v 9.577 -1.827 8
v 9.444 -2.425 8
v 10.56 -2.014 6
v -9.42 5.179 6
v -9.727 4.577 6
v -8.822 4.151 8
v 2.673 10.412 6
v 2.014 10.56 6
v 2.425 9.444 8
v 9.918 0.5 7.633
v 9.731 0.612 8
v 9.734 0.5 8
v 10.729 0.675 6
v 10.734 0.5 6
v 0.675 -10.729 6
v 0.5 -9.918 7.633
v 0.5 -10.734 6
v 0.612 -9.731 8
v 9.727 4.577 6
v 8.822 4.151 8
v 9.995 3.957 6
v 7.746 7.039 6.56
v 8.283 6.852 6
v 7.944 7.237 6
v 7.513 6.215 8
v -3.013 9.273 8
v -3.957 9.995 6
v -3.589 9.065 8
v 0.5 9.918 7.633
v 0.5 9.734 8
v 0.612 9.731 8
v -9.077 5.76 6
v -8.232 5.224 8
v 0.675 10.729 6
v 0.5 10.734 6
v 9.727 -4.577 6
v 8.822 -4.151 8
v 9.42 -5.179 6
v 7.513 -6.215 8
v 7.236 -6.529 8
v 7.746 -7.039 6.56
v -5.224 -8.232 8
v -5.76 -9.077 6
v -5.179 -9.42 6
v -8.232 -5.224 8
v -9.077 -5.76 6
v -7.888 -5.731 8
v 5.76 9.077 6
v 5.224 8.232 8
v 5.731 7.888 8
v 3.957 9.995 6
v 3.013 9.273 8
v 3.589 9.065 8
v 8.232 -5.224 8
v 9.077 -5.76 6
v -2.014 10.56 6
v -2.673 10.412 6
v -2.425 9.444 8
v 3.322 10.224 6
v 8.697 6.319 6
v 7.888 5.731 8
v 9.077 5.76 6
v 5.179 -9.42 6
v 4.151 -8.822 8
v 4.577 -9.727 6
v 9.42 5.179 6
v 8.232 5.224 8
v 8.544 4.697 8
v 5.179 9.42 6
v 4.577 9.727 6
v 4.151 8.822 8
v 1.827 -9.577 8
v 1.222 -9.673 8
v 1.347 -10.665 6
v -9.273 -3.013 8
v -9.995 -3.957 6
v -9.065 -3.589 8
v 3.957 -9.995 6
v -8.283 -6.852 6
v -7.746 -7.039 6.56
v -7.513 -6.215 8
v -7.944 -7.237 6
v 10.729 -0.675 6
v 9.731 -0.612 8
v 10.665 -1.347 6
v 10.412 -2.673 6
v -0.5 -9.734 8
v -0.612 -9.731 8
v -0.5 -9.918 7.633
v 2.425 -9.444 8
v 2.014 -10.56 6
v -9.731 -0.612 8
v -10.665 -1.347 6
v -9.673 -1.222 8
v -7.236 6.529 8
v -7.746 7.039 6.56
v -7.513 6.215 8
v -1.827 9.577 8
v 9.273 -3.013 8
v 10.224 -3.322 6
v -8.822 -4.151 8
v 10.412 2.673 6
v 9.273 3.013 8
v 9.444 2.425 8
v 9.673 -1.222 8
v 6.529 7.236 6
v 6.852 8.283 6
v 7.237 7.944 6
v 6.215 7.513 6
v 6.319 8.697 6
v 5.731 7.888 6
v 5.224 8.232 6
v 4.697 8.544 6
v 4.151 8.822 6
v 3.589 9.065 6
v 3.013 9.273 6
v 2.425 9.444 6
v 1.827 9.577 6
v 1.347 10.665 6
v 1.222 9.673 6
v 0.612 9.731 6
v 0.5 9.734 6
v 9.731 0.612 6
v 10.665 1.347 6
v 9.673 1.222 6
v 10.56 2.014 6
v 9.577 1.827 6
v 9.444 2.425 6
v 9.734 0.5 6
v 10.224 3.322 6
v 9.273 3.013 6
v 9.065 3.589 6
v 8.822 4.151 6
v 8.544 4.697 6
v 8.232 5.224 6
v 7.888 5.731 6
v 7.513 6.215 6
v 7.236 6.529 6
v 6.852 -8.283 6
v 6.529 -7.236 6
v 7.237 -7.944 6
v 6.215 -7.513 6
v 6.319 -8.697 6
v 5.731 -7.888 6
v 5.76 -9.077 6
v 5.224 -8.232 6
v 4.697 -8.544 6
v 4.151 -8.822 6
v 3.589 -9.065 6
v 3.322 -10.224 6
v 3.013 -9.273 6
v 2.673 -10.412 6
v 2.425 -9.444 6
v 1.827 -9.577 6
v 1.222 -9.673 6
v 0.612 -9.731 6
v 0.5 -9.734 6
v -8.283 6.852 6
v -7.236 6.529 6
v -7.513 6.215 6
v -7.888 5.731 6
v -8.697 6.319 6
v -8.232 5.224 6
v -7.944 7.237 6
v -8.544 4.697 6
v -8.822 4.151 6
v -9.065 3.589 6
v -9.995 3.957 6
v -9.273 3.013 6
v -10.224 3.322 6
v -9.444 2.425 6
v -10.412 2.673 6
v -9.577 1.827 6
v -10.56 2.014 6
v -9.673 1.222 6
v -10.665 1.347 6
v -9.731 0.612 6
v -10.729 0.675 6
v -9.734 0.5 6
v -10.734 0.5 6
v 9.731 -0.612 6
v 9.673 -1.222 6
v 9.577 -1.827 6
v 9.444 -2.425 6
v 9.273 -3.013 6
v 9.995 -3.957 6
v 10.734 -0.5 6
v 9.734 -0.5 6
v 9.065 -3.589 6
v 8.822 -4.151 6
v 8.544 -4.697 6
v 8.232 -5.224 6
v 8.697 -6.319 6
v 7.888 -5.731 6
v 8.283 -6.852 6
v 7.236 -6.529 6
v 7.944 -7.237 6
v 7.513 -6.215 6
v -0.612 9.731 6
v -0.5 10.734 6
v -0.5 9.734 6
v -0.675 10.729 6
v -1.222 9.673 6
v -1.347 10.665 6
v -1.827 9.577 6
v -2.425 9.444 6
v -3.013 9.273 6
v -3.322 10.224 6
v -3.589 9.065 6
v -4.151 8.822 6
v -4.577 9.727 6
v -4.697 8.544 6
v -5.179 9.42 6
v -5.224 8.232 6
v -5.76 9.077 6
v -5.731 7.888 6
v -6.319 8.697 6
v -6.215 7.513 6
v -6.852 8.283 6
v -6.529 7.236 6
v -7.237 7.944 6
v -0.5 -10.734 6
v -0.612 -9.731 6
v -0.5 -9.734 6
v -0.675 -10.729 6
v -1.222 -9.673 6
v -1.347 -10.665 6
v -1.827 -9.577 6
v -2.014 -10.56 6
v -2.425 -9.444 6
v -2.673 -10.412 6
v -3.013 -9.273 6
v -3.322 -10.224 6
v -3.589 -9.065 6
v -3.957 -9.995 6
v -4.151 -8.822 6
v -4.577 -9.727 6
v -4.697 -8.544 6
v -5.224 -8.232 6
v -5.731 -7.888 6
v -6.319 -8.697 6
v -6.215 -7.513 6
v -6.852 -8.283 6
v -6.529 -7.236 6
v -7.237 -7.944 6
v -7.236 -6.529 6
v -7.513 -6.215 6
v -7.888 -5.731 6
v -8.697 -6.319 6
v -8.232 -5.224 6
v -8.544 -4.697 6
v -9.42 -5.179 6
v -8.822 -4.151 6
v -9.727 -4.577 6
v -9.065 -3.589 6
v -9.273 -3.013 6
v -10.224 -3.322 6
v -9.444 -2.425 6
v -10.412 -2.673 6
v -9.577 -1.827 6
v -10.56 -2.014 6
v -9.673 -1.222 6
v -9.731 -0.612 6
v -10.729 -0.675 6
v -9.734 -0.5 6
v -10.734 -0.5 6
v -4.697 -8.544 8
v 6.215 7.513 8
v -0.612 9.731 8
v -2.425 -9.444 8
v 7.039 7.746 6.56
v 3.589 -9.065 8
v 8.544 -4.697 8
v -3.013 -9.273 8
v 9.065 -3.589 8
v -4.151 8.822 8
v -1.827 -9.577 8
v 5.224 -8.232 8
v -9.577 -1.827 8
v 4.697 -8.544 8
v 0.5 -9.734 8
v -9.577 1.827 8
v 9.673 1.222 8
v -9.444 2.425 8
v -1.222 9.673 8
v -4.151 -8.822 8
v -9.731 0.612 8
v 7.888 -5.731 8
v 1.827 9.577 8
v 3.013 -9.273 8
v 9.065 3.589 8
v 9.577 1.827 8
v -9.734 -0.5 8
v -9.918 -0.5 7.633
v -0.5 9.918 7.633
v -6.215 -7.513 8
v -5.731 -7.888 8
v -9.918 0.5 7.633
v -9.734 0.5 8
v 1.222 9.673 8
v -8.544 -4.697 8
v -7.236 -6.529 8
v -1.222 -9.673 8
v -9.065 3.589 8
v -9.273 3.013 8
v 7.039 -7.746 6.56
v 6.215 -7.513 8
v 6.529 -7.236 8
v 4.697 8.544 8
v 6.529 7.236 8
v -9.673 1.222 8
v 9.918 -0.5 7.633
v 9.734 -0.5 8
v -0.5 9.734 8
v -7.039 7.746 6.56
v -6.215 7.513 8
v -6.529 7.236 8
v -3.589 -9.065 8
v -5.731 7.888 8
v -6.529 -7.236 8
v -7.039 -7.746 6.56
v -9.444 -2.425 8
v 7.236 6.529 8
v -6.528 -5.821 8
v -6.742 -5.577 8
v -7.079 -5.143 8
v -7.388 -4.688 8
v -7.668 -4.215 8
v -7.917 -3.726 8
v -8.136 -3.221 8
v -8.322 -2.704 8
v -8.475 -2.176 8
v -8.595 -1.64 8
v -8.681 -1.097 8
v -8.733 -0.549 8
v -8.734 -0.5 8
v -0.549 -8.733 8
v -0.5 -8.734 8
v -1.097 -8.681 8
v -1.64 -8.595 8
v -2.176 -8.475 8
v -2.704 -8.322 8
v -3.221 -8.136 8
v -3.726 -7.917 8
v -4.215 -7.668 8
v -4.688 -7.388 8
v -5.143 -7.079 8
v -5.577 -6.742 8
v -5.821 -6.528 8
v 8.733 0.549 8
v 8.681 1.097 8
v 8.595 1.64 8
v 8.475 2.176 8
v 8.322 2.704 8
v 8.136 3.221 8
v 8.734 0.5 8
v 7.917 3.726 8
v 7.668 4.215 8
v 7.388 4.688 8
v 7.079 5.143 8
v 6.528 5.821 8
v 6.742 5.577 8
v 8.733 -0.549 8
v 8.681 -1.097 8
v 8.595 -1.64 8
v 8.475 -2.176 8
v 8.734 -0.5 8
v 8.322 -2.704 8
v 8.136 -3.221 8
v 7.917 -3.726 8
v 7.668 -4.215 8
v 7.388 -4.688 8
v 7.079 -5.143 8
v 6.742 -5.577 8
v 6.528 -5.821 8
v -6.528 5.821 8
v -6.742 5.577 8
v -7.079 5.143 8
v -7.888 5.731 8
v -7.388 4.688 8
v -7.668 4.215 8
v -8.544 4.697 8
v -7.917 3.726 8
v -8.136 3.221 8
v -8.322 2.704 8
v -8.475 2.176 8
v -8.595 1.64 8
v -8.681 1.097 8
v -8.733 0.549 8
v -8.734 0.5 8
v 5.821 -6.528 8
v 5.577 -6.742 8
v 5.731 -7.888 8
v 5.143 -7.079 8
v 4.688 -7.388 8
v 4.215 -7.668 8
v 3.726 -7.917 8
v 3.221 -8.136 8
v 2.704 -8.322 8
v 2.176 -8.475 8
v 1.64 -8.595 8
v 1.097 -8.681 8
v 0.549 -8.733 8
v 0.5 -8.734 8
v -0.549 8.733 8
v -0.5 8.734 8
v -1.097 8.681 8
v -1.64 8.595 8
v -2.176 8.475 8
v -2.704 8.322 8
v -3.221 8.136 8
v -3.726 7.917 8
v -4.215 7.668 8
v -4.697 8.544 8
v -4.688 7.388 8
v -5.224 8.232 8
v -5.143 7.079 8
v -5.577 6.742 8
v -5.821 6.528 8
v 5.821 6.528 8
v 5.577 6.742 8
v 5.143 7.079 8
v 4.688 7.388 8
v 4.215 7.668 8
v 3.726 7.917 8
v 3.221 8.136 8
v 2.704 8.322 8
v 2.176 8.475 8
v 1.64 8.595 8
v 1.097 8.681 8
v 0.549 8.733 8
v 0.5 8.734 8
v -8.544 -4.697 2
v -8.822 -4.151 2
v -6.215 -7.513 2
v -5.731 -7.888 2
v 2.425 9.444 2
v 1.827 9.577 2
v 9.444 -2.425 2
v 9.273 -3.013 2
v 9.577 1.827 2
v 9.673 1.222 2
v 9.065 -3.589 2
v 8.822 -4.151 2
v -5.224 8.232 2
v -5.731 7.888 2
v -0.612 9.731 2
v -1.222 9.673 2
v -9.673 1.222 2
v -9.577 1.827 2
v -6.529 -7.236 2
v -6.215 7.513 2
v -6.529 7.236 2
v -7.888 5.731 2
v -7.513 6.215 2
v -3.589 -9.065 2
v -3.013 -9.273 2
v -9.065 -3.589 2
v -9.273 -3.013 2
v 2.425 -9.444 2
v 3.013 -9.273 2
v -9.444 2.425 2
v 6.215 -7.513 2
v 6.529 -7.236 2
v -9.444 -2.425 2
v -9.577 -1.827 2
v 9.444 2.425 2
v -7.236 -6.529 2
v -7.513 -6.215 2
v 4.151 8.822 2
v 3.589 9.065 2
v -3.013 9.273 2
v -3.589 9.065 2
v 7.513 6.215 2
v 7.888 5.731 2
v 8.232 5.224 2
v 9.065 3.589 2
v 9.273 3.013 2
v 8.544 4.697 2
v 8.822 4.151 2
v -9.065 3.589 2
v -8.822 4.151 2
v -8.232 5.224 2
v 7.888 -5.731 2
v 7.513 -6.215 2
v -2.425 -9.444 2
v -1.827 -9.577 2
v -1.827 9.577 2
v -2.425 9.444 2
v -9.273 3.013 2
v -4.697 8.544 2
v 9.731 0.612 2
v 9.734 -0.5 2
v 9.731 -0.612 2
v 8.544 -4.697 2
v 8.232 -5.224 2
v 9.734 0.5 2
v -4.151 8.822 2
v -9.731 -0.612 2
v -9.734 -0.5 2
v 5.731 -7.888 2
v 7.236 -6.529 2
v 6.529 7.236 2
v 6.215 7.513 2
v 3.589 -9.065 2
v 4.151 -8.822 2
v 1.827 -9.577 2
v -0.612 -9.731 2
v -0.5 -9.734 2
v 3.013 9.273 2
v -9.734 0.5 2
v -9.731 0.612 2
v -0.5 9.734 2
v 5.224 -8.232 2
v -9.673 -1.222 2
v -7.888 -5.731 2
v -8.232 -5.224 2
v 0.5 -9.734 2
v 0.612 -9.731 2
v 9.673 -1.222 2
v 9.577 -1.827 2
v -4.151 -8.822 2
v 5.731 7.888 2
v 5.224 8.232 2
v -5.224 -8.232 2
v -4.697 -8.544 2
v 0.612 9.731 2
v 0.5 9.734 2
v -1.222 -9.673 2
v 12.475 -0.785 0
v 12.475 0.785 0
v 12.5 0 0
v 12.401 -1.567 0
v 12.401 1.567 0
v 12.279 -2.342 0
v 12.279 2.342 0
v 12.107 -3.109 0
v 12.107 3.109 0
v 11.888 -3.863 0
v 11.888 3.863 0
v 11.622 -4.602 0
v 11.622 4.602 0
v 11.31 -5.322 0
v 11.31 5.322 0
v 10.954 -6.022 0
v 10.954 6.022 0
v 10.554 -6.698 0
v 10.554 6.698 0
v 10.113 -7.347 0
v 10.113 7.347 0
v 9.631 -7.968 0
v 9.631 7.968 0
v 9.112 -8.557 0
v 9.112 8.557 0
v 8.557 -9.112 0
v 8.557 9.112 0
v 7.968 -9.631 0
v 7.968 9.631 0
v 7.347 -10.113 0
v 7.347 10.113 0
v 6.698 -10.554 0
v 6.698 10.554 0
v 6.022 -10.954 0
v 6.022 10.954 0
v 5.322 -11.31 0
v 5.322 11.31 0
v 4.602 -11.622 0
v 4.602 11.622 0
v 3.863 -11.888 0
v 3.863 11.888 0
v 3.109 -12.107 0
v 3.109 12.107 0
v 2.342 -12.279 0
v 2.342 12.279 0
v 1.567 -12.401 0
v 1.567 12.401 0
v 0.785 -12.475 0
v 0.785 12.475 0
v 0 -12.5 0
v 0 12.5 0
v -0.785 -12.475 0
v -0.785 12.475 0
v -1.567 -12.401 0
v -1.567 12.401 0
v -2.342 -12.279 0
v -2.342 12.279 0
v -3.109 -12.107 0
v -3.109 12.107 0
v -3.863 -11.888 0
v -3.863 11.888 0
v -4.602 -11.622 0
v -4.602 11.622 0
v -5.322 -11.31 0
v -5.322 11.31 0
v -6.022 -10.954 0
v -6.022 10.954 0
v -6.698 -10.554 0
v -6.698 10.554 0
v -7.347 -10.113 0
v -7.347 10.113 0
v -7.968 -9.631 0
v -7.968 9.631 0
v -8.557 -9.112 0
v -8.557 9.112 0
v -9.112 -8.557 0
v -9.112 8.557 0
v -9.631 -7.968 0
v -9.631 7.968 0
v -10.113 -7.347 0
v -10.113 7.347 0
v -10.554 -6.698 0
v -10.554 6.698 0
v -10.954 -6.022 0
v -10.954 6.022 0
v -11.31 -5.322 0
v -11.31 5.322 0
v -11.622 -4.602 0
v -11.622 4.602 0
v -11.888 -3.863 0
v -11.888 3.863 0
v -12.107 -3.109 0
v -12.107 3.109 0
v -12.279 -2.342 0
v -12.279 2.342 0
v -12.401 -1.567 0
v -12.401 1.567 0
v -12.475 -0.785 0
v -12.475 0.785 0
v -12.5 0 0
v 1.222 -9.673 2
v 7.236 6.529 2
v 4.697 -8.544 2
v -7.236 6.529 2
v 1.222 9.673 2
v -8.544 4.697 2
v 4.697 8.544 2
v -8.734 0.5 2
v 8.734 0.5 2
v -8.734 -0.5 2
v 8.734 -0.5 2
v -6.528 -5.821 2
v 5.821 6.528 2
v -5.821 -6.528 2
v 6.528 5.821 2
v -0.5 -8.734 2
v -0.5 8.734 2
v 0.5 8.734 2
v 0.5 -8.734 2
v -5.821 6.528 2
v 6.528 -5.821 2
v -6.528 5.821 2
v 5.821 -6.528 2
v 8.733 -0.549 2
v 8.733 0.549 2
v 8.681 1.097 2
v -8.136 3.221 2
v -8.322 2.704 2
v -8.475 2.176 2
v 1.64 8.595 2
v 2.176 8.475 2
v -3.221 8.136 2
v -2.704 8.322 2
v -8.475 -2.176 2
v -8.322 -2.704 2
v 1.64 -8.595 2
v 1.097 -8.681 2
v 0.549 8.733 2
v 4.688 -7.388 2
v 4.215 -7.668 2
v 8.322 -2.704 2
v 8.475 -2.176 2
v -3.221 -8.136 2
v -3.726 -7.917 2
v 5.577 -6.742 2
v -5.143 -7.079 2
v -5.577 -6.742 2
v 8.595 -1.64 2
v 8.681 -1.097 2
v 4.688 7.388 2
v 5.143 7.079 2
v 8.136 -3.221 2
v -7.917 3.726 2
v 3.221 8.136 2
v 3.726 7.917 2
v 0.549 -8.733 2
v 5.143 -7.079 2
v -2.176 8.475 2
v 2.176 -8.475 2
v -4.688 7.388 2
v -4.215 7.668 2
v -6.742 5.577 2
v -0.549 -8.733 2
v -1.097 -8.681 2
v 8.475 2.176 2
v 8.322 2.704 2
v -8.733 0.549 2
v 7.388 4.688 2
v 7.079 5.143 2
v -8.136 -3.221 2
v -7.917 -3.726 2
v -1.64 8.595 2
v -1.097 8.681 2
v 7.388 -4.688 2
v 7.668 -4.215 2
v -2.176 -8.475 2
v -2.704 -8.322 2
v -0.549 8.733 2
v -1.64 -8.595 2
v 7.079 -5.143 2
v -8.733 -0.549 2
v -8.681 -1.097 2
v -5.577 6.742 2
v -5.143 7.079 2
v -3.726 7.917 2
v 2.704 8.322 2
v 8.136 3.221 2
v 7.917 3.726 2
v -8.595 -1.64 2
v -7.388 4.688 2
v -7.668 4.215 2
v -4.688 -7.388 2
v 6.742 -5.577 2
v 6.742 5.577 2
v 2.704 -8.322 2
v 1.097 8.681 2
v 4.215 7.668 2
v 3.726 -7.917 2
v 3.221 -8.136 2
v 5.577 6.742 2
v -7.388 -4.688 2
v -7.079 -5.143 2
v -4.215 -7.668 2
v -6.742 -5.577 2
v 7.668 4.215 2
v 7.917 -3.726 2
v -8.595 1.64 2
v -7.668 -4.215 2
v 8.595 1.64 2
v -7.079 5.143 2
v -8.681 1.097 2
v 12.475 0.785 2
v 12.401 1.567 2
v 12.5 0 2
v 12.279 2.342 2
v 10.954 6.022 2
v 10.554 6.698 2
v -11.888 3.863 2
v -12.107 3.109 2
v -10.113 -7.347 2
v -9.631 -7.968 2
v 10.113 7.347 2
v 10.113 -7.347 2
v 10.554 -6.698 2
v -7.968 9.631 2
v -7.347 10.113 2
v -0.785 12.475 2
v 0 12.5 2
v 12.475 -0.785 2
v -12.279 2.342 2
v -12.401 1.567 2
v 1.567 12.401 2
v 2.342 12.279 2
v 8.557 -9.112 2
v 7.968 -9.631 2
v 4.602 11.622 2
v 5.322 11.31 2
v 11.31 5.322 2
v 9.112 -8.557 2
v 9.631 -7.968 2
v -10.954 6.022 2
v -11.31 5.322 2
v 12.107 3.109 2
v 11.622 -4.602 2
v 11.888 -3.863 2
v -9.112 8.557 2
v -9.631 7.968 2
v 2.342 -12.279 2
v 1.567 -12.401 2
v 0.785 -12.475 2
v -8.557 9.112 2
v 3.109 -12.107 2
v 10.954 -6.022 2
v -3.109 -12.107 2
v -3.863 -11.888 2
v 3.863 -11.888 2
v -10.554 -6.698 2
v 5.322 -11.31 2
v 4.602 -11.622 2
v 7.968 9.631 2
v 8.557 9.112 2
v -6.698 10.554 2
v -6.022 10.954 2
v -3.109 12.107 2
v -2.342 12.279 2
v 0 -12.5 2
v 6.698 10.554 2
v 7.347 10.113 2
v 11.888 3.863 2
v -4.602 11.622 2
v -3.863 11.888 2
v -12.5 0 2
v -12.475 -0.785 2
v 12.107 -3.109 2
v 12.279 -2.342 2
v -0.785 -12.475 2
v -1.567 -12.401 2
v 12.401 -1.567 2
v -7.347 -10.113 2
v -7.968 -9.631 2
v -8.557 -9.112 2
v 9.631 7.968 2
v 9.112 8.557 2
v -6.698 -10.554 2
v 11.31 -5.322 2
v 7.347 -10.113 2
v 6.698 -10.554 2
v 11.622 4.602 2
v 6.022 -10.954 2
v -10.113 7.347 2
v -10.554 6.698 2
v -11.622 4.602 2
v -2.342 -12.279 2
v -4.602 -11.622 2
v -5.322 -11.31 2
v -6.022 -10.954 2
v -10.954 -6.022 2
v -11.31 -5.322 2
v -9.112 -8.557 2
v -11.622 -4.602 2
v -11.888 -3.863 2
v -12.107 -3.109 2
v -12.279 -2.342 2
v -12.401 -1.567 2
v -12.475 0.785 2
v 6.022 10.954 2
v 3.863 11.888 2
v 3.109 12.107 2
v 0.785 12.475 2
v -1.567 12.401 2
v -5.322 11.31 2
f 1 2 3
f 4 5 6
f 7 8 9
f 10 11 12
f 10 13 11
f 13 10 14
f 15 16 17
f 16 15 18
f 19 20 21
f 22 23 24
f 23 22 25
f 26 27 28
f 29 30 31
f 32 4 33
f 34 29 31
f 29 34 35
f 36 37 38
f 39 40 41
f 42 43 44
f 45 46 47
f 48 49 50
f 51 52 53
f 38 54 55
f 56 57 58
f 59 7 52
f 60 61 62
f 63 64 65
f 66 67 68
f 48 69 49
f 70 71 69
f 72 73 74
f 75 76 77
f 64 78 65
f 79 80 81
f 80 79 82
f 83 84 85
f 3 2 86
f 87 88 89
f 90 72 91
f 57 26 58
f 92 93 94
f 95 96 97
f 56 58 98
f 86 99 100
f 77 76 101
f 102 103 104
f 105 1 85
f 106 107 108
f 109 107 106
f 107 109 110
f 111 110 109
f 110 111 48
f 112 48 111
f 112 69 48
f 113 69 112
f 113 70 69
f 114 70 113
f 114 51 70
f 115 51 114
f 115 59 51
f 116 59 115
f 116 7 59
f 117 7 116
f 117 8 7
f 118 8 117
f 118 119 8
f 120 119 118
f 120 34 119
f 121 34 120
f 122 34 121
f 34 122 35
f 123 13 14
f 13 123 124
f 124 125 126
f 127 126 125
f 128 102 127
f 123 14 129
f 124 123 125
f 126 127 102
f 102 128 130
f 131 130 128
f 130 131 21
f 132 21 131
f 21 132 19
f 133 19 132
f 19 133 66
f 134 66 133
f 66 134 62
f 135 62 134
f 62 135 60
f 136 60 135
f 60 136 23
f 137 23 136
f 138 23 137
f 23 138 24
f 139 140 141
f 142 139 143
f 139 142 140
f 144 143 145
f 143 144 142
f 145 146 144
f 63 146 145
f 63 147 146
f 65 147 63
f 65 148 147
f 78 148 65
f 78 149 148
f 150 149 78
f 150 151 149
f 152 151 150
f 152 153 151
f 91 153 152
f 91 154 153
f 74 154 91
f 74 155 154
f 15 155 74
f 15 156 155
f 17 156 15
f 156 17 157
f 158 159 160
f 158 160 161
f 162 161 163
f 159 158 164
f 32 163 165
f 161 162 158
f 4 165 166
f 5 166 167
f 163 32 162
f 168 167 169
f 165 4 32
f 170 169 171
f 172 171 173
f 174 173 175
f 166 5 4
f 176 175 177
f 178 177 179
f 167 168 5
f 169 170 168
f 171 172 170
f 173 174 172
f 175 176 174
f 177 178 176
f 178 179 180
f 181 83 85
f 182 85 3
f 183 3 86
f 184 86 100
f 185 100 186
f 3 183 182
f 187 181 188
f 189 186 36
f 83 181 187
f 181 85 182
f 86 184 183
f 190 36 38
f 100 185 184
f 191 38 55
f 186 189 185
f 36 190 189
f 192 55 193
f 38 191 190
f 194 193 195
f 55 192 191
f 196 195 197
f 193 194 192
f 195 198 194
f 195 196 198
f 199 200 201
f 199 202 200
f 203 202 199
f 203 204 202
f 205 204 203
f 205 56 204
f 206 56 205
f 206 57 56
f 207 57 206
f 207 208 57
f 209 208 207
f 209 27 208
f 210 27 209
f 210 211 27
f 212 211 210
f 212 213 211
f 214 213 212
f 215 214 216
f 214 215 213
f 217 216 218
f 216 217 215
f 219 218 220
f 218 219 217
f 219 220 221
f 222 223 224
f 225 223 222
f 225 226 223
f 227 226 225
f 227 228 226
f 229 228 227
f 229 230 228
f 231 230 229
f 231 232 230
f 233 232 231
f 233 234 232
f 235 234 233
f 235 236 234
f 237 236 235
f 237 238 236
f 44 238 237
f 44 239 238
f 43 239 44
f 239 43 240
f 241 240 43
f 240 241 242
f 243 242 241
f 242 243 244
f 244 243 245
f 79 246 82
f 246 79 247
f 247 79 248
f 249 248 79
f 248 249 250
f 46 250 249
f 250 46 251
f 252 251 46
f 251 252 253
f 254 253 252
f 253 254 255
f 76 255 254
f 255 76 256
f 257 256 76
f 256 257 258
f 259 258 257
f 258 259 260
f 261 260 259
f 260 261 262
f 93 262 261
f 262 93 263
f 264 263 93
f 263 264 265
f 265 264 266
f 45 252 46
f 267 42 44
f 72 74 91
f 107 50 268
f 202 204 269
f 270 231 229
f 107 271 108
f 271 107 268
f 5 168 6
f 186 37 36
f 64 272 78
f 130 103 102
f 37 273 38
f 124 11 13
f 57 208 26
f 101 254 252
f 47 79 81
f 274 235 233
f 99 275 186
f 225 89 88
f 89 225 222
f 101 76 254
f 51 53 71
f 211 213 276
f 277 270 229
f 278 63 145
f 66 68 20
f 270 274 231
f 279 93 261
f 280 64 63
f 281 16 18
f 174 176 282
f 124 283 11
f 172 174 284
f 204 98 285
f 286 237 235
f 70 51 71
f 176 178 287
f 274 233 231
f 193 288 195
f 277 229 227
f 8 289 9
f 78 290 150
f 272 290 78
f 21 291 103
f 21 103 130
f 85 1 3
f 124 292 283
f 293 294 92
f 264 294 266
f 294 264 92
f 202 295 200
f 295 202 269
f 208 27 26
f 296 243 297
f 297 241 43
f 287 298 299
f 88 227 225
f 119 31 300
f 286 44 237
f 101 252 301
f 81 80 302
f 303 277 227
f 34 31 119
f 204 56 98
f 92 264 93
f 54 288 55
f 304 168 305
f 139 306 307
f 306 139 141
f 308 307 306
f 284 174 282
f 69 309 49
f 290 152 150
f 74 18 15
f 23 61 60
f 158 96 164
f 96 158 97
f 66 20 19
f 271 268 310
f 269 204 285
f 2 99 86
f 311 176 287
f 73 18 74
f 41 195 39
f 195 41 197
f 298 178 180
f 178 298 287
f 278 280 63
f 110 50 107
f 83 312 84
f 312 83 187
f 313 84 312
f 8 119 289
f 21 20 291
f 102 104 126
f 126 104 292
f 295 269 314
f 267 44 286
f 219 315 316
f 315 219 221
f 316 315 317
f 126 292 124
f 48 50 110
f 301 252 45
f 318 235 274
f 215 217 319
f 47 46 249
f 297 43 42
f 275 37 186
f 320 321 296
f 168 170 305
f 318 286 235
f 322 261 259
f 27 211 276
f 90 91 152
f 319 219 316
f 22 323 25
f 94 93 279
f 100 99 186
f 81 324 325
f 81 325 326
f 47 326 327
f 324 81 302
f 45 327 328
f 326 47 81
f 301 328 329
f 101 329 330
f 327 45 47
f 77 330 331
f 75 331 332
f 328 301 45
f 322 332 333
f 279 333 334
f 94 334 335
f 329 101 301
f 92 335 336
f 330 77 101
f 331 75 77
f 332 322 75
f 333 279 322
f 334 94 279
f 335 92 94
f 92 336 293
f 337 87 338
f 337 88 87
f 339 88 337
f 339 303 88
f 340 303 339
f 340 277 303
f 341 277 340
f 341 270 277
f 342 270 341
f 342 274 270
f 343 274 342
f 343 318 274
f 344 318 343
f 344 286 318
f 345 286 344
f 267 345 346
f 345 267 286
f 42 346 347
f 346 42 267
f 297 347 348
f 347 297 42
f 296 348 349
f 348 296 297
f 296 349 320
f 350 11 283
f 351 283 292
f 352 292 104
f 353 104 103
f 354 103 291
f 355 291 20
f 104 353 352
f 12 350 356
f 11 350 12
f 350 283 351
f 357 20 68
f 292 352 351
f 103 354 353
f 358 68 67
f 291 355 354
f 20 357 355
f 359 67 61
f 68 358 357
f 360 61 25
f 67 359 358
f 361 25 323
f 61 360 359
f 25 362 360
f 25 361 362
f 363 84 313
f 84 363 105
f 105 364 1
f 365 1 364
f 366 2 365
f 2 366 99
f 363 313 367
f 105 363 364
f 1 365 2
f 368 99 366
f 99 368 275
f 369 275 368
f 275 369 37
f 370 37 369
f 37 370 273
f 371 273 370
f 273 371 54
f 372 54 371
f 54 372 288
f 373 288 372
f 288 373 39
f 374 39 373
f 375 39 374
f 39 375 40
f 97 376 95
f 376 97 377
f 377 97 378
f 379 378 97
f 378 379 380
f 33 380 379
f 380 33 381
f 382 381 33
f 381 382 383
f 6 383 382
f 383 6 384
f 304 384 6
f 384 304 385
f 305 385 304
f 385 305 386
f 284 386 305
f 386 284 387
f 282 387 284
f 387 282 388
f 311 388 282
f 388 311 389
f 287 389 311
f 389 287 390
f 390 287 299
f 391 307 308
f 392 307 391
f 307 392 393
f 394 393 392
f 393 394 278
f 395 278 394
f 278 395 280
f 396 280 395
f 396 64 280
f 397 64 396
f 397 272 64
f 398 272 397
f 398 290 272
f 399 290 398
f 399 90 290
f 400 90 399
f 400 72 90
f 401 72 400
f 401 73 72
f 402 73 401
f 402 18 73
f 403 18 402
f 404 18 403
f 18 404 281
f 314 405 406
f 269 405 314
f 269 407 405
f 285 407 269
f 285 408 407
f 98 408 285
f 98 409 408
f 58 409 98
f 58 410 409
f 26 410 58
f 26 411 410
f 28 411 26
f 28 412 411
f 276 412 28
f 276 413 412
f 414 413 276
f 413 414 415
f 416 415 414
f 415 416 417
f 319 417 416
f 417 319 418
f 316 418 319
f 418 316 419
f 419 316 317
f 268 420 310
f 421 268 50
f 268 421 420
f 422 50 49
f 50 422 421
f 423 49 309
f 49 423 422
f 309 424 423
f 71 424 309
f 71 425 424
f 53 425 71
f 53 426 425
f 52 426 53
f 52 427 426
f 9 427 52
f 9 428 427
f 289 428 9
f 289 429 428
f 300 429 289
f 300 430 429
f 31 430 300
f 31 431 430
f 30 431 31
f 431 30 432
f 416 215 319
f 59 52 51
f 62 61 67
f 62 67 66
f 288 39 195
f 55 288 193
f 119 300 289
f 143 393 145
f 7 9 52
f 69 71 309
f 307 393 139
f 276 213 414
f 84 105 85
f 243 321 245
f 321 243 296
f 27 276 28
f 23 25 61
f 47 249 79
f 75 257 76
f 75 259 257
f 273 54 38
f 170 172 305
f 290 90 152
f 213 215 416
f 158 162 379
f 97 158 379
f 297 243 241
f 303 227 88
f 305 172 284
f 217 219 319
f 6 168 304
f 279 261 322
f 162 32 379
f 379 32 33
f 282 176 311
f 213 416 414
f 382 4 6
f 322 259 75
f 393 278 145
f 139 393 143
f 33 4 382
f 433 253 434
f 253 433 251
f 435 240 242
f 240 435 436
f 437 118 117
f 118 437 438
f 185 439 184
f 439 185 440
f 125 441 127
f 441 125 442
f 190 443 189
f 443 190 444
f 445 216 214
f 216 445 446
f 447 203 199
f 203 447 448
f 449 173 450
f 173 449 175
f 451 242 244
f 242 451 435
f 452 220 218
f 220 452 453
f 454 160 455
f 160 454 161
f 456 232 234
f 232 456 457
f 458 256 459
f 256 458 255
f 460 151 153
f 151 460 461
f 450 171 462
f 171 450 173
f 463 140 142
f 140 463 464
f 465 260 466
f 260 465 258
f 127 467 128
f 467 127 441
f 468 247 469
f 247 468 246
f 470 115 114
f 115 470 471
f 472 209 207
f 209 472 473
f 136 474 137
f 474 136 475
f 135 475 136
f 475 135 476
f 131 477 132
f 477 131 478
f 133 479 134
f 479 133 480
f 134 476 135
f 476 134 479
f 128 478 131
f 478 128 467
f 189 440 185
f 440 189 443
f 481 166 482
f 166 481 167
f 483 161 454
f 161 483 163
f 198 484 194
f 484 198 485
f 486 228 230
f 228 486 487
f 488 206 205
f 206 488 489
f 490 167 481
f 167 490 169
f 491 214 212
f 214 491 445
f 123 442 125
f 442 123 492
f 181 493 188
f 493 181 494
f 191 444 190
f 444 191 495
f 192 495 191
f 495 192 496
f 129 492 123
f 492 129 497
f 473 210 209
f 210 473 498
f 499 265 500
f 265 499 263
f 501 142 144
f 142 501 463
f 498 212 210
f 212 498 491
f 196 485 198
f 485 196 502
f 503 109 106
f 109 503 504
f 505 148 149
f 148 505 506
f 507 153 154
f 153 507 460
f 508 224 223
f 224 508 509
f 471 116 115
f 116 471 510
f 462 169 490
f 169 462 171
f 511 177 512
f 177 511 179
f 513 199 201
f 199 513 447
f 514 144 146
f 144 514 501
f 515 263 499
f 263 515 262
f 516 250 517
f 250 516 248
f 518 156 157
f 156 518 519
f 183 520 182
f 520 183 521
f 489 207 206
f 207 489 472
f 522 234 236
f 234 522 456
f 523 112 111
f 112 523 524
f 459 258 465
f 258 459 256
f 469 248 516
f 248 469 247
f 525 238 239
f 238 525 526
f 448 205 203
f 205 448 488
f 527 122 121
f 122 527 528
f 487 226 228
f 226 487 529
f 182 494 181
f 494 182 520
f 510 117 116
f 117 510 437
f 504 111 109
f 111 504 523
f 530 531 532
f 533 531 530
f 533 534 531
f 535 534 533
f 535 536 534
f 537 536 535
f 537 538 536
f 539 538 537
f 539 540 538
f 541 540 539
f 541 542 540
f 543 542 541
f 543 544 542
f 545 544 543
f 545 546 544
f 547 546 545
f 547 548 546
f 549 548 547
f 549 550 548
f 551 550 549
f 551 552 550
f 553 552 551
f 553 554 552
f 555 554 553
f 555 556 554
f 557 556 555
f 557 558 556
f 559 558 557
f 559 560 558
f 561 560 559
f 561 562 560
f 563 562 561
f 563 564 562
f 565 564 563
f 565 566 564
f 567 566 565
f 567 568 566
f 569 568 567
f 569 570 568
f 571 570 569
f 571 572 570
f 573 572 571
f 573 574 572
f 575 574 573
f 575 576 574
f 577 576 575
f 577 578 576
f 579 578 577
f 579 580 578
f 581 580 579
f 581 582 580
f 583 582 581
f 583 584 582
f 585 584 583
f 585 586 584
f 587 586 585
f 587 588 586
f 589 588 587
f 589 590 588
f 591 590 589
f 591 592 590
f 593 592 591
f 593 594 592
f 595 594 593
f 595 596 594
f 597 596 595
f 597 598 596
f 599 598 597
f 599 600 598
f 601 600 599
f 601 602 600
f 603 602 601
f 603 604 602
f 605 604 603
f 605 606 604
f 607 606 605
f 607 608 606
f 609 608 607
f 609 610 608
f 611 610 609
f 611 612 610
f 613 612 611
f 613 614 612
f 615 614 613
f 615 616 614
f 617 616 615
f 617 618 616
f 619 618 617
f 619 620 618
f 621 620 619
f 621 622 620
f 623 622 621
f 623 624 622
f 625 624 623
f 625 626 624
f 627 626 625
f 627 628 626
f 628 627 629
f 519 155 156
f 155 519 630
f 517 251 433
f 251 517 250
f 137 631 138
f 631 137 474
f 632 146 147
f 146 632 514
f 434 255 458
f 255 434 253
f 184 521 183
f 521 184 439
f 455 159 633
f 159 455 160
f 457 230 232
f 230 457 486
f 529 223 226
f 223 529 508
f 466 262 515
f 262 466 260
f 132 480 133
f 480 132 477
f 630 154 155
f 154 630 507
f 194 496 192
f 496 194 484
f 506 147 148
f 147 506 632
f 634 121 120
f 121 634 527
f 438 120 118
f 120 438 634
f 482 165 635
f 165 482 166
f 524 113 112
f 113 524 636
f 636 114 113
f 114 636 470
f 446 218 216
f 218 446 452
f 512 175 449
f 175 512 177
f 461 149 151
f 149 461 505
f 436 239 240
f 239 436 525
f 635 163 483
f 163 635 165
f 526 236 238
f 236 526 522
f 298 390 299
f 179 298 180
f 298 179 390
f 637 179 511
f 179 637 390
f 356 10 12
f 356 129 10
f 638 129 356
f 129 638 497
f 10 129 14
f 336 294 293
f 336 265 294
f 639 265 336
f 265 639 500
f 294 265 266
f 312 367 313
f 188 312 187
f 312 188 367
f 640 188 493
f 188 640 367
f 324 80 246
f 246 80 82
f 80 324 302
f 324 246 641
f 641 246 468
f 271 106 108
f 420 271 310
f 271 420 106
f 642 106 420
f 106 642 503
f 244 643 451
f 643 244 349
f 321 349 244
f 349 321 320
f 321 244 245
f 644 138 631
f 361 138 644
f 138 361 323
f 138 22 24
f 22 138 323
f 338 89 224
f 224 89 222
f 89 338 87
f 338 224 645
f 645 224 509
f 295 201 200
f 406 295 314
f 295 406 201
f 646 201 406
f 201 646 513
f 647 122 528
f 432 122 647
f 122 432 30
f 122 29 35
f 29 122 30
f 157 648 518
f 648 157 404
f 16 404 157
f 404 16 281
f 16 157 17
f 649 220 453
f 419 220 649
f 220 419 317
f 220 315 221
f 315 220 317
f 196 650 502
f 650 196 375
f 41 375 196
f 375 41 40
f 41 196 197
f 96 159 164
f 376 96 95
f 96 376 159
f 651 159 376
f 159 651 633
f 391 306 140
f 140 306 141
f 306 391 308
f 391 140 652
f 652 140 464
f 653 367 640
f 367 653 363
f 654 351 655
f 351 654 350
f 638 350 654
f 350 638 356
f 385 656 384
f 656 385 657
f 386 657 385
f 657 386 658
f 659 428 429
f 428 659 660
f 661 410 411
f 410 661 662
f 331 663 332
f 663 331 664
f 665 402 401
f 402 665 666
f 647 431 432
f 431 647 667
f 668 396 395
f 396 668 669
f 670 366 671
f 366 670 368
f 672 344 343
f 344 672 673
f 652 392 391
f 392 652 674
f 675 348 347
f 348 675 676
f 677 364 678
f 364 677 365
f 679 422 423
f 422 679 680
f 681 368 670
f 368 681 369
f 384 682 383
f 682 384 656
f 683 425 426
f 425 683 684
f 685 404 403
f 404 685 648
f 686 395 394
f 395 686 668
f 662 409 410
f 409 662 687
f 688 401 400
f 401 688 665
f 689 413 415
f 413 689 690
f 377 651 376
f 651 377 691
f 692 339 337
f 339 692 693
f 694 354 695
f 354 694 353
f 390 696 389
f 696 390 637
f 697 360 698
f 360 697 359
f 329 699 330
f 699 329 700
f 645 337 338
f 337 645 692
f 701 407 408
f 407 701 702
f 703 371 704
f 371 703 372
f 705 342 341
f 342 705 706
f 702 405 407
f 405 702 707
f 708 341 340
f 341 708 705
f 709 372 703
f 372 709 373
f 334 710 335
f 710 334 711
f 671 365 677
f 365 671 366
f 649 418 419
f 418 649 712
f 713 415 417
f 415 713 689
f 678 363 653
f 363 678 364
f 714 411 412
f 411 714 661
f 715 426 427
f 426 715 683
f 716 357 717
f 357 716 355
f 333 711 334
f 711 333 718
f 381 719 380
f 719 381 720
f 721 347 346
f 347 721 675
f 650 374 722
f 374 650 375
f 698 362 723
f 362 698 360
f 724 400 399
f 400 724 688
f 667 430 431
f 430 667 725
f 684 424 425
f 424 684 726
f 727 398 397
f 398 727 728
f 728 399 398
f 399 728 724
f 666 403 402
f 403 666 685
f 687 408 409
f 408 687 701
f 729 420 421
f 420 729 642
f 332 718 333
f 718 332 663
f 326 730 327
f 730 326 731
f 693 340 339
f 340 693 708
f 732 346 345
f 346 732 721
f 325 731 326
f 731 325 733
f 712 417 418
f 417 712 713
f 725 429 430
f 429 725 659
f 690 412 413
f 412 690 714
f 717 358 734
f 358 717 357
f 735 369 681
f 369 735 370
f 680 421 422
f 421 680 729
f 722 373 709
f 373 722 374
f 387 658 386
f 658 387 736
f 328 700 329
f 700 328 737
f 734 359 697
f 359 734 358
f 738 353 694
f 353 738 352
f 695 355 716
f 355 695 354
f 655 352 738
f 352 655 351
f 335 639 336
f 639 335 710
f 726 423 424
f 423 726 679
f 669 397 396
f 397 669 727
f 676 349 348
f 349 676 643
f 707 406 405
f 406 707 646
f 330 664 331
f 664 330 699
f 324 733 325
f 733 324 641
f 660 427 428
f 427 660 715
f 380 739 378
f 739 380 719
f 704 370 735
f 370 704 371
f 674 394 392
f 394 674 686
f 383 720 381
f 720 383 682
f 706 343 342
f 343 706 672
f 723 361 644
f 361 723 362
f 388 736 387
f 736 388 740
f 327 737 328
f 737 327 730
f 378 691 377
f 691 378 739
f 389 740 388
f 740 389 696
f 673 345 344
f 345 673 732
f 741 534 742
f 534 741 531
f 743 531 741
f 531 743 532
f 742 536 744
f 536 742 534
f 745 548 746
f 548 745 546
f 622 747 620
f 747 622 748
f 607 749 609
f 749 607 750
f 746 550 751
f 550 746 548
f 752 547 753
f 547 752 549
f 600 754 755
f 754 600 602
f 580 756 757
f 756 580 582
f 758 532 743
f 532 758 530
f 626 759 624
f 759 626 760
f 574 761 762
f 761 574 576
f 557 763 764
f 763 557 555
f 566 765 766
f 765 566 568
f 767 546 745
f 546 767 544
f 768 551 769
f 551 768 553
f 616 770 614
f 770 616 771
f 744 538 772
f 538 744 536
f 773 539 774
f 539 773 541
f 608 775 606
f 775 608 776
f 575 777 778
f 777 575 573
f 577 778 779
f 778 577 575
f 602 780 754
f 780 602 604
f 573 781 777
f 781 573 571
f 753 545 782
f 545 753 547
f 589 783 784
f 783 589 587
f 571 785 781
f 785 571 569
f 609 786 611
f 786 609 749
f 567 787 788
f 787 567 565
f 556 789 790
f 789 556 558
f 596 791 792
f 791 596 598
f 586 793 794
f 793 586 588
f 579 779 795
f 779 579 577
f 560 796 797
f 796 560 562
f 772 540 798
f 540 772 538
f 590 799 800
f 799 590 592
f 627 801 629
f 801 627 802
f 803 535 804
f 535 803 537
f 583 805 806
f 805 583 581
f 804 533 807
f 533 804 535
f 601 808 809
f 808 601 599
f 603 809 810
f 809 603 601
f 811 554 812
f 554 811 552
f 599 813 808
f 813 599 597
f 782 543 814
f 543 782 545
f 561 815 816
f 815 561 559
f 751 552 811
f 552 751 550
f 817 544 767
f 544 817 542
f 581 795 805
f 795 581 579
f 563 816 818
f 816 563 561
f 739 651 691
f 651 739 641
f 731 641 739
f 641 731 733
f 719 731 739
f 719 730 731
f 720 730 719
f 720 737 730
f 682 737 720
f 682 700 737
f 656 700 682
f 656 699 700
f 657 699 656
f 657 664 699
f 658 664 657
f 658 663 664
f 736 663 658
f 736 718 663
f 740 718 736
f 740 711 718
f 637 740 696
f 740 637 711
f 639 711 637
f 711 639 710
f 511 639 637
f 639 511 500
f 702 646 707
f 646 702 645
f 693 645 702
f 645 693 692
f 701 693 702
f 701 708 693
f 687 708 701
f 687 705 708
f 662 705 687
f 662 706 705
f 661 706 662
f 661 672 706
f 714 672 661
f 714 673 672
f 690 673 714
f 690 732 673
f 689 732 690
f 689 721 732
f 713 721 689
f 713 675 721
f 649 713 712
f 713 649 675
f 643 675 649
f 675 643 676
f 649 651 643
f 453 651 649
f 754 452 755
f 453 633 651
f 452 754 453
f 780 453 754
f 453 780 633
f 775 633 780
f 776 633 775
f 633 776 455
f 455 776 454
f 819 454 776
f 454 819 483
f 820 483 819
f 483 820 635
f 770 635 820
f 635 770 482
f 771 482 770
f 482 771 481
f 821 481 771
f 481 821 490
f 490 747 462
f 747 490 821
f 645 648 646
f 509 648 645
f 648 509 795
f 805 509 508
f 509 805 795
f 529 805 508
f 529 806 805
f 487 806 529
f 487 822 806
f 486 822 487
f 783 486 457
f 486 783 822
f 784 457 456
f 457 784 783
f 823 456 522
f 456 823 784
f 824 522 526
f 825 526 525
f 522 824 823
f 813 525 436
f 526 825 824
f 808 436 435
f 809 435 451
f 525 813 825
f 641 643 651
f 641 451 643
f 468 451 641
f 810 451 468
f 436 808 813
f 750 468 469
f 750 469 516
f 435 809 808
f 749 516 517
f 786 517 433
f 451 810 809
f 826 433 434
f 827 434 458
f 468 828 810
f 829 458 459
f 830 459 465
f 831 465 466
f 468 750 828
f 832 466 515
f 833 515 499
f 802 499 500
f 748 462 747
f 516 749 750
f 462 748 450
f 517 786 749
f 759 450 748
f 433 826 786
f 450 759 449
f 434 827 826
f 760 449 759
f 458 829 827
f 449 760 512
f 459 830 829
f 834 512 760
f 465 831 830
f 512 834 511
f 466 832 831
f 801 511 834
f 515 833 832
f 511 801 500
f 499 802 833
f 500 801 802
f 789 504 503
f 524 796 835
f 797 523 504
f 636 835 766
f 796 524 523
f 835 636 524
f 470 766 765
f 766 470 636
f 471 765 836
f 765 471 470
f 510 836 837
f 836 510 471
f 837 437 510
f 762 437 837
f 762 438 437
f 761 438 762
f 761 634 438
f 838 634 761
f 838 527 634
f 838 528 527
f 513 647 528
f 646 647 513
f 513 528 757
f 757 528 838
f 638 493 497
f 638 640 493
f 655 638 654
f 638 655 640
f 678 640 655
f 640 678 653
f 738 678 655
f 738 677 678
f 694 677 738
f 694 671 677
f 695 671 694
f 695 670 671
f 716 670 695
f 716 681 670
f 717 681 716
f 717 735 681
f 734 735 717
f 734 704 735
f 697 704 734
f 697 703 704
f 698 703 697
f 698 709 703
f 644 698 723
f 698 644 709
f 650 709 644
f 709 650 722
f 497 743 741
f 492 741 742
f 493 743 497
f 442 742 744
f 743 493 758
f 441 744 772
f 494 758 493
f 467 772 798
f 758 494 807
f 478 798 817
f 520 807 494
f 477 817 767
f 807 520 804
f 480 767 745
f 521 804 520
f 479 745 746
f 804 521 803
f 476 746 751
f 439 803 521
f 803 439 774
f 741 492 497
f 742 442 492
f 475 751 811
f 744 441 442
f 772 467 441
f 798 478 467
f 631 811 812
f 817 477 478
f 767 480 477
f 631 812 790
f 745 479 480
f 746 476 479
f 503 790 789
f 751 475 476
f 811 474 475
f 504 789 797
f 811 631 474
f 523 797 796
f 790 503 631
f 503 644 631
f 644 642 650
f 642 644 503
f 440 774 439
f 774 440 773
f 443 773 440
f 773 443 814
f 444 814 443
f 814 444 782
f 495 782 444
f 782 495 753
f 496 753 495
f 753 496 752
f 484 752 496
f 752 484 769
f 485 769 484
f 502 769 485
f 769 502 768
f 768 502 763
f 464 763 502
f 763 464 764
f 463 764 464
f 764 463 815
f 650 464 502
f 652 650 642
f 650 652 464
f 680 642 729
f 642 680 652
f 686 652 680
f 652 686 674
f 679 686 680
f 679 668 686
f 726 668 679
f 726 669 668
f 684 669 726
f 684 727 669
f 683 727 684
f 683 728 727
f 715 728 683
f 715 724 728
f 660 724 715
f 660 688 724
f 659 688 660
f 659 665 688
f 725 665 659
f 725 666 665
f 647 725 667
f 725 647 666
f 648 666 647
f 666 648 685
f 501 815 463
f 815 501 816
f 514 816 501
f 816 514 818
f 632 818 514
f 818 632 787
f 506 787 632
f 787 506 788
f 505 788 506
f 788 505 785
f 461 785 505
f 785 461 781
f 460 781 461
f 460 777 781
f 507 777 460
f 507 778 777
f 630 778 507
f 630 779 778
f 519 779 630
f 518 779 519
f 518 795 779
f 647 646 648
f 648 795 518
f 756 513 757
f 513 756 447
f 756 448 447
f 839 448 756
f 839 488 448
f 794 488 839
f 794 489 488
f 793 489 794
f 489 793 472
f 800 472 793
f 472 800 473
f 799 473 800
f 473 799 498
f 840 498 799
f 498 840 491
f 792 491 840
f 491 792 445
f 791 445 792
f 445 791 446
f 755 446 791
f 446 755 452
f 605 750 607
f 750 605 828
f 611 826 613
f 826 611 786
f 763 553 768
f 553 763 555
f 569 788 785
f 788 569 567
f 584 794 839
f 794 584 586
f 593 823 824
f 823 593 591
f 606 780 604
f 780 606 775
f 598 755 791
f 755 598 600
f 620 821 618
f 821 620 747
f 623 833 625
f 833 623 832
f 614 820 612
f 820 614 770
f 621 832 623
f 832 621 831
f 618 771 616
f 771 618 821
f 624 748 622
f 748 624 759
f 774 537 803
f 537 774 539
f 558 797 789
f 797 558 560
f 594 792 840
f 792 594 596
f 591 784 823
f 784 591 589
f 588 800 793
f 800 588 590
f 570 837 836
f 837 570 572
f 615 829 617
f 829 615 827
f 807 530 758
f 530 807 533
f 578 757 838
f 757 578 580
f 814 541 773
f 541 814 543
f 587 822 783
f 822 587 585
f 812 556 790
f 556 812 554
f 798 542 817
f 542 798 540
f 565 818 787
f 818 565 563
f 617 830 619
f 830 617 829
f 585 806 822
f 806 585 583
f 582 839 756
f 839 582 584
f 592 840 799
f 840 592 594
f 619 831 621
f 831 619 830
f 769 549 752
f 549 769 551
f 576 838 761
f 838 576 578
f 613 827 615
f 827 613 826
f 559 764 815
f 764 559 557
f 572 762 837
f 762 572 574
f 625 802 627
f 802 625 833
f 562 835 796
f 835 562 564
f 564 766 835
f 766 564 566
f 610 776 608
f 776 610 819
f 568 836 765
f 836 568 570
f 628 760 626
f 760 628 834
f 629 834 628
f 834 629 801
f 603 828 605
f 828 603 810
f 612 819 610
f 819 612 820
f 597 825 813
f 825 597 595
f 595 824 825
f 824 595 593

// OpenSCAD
$fn = 100; 
r1 = 25/2;
r2 = 19.5/2;

l1 = 2;
l2 = 4;
l3 = 2;

lges = l1+l2+l3;

strength = 1;

cylinder(2,r1,r1);
difference() {
    union() {
        translate([0,0,6]) cylinder(2,r2+1,r2);
        cylinder(lges,r2,r2);
    }

    for (i=[0:45:360])
    rotate([0,0,i]) cube([40,1,20],center=true);
    
    cylinder(lges,r2-strength,r2-strength);

}
